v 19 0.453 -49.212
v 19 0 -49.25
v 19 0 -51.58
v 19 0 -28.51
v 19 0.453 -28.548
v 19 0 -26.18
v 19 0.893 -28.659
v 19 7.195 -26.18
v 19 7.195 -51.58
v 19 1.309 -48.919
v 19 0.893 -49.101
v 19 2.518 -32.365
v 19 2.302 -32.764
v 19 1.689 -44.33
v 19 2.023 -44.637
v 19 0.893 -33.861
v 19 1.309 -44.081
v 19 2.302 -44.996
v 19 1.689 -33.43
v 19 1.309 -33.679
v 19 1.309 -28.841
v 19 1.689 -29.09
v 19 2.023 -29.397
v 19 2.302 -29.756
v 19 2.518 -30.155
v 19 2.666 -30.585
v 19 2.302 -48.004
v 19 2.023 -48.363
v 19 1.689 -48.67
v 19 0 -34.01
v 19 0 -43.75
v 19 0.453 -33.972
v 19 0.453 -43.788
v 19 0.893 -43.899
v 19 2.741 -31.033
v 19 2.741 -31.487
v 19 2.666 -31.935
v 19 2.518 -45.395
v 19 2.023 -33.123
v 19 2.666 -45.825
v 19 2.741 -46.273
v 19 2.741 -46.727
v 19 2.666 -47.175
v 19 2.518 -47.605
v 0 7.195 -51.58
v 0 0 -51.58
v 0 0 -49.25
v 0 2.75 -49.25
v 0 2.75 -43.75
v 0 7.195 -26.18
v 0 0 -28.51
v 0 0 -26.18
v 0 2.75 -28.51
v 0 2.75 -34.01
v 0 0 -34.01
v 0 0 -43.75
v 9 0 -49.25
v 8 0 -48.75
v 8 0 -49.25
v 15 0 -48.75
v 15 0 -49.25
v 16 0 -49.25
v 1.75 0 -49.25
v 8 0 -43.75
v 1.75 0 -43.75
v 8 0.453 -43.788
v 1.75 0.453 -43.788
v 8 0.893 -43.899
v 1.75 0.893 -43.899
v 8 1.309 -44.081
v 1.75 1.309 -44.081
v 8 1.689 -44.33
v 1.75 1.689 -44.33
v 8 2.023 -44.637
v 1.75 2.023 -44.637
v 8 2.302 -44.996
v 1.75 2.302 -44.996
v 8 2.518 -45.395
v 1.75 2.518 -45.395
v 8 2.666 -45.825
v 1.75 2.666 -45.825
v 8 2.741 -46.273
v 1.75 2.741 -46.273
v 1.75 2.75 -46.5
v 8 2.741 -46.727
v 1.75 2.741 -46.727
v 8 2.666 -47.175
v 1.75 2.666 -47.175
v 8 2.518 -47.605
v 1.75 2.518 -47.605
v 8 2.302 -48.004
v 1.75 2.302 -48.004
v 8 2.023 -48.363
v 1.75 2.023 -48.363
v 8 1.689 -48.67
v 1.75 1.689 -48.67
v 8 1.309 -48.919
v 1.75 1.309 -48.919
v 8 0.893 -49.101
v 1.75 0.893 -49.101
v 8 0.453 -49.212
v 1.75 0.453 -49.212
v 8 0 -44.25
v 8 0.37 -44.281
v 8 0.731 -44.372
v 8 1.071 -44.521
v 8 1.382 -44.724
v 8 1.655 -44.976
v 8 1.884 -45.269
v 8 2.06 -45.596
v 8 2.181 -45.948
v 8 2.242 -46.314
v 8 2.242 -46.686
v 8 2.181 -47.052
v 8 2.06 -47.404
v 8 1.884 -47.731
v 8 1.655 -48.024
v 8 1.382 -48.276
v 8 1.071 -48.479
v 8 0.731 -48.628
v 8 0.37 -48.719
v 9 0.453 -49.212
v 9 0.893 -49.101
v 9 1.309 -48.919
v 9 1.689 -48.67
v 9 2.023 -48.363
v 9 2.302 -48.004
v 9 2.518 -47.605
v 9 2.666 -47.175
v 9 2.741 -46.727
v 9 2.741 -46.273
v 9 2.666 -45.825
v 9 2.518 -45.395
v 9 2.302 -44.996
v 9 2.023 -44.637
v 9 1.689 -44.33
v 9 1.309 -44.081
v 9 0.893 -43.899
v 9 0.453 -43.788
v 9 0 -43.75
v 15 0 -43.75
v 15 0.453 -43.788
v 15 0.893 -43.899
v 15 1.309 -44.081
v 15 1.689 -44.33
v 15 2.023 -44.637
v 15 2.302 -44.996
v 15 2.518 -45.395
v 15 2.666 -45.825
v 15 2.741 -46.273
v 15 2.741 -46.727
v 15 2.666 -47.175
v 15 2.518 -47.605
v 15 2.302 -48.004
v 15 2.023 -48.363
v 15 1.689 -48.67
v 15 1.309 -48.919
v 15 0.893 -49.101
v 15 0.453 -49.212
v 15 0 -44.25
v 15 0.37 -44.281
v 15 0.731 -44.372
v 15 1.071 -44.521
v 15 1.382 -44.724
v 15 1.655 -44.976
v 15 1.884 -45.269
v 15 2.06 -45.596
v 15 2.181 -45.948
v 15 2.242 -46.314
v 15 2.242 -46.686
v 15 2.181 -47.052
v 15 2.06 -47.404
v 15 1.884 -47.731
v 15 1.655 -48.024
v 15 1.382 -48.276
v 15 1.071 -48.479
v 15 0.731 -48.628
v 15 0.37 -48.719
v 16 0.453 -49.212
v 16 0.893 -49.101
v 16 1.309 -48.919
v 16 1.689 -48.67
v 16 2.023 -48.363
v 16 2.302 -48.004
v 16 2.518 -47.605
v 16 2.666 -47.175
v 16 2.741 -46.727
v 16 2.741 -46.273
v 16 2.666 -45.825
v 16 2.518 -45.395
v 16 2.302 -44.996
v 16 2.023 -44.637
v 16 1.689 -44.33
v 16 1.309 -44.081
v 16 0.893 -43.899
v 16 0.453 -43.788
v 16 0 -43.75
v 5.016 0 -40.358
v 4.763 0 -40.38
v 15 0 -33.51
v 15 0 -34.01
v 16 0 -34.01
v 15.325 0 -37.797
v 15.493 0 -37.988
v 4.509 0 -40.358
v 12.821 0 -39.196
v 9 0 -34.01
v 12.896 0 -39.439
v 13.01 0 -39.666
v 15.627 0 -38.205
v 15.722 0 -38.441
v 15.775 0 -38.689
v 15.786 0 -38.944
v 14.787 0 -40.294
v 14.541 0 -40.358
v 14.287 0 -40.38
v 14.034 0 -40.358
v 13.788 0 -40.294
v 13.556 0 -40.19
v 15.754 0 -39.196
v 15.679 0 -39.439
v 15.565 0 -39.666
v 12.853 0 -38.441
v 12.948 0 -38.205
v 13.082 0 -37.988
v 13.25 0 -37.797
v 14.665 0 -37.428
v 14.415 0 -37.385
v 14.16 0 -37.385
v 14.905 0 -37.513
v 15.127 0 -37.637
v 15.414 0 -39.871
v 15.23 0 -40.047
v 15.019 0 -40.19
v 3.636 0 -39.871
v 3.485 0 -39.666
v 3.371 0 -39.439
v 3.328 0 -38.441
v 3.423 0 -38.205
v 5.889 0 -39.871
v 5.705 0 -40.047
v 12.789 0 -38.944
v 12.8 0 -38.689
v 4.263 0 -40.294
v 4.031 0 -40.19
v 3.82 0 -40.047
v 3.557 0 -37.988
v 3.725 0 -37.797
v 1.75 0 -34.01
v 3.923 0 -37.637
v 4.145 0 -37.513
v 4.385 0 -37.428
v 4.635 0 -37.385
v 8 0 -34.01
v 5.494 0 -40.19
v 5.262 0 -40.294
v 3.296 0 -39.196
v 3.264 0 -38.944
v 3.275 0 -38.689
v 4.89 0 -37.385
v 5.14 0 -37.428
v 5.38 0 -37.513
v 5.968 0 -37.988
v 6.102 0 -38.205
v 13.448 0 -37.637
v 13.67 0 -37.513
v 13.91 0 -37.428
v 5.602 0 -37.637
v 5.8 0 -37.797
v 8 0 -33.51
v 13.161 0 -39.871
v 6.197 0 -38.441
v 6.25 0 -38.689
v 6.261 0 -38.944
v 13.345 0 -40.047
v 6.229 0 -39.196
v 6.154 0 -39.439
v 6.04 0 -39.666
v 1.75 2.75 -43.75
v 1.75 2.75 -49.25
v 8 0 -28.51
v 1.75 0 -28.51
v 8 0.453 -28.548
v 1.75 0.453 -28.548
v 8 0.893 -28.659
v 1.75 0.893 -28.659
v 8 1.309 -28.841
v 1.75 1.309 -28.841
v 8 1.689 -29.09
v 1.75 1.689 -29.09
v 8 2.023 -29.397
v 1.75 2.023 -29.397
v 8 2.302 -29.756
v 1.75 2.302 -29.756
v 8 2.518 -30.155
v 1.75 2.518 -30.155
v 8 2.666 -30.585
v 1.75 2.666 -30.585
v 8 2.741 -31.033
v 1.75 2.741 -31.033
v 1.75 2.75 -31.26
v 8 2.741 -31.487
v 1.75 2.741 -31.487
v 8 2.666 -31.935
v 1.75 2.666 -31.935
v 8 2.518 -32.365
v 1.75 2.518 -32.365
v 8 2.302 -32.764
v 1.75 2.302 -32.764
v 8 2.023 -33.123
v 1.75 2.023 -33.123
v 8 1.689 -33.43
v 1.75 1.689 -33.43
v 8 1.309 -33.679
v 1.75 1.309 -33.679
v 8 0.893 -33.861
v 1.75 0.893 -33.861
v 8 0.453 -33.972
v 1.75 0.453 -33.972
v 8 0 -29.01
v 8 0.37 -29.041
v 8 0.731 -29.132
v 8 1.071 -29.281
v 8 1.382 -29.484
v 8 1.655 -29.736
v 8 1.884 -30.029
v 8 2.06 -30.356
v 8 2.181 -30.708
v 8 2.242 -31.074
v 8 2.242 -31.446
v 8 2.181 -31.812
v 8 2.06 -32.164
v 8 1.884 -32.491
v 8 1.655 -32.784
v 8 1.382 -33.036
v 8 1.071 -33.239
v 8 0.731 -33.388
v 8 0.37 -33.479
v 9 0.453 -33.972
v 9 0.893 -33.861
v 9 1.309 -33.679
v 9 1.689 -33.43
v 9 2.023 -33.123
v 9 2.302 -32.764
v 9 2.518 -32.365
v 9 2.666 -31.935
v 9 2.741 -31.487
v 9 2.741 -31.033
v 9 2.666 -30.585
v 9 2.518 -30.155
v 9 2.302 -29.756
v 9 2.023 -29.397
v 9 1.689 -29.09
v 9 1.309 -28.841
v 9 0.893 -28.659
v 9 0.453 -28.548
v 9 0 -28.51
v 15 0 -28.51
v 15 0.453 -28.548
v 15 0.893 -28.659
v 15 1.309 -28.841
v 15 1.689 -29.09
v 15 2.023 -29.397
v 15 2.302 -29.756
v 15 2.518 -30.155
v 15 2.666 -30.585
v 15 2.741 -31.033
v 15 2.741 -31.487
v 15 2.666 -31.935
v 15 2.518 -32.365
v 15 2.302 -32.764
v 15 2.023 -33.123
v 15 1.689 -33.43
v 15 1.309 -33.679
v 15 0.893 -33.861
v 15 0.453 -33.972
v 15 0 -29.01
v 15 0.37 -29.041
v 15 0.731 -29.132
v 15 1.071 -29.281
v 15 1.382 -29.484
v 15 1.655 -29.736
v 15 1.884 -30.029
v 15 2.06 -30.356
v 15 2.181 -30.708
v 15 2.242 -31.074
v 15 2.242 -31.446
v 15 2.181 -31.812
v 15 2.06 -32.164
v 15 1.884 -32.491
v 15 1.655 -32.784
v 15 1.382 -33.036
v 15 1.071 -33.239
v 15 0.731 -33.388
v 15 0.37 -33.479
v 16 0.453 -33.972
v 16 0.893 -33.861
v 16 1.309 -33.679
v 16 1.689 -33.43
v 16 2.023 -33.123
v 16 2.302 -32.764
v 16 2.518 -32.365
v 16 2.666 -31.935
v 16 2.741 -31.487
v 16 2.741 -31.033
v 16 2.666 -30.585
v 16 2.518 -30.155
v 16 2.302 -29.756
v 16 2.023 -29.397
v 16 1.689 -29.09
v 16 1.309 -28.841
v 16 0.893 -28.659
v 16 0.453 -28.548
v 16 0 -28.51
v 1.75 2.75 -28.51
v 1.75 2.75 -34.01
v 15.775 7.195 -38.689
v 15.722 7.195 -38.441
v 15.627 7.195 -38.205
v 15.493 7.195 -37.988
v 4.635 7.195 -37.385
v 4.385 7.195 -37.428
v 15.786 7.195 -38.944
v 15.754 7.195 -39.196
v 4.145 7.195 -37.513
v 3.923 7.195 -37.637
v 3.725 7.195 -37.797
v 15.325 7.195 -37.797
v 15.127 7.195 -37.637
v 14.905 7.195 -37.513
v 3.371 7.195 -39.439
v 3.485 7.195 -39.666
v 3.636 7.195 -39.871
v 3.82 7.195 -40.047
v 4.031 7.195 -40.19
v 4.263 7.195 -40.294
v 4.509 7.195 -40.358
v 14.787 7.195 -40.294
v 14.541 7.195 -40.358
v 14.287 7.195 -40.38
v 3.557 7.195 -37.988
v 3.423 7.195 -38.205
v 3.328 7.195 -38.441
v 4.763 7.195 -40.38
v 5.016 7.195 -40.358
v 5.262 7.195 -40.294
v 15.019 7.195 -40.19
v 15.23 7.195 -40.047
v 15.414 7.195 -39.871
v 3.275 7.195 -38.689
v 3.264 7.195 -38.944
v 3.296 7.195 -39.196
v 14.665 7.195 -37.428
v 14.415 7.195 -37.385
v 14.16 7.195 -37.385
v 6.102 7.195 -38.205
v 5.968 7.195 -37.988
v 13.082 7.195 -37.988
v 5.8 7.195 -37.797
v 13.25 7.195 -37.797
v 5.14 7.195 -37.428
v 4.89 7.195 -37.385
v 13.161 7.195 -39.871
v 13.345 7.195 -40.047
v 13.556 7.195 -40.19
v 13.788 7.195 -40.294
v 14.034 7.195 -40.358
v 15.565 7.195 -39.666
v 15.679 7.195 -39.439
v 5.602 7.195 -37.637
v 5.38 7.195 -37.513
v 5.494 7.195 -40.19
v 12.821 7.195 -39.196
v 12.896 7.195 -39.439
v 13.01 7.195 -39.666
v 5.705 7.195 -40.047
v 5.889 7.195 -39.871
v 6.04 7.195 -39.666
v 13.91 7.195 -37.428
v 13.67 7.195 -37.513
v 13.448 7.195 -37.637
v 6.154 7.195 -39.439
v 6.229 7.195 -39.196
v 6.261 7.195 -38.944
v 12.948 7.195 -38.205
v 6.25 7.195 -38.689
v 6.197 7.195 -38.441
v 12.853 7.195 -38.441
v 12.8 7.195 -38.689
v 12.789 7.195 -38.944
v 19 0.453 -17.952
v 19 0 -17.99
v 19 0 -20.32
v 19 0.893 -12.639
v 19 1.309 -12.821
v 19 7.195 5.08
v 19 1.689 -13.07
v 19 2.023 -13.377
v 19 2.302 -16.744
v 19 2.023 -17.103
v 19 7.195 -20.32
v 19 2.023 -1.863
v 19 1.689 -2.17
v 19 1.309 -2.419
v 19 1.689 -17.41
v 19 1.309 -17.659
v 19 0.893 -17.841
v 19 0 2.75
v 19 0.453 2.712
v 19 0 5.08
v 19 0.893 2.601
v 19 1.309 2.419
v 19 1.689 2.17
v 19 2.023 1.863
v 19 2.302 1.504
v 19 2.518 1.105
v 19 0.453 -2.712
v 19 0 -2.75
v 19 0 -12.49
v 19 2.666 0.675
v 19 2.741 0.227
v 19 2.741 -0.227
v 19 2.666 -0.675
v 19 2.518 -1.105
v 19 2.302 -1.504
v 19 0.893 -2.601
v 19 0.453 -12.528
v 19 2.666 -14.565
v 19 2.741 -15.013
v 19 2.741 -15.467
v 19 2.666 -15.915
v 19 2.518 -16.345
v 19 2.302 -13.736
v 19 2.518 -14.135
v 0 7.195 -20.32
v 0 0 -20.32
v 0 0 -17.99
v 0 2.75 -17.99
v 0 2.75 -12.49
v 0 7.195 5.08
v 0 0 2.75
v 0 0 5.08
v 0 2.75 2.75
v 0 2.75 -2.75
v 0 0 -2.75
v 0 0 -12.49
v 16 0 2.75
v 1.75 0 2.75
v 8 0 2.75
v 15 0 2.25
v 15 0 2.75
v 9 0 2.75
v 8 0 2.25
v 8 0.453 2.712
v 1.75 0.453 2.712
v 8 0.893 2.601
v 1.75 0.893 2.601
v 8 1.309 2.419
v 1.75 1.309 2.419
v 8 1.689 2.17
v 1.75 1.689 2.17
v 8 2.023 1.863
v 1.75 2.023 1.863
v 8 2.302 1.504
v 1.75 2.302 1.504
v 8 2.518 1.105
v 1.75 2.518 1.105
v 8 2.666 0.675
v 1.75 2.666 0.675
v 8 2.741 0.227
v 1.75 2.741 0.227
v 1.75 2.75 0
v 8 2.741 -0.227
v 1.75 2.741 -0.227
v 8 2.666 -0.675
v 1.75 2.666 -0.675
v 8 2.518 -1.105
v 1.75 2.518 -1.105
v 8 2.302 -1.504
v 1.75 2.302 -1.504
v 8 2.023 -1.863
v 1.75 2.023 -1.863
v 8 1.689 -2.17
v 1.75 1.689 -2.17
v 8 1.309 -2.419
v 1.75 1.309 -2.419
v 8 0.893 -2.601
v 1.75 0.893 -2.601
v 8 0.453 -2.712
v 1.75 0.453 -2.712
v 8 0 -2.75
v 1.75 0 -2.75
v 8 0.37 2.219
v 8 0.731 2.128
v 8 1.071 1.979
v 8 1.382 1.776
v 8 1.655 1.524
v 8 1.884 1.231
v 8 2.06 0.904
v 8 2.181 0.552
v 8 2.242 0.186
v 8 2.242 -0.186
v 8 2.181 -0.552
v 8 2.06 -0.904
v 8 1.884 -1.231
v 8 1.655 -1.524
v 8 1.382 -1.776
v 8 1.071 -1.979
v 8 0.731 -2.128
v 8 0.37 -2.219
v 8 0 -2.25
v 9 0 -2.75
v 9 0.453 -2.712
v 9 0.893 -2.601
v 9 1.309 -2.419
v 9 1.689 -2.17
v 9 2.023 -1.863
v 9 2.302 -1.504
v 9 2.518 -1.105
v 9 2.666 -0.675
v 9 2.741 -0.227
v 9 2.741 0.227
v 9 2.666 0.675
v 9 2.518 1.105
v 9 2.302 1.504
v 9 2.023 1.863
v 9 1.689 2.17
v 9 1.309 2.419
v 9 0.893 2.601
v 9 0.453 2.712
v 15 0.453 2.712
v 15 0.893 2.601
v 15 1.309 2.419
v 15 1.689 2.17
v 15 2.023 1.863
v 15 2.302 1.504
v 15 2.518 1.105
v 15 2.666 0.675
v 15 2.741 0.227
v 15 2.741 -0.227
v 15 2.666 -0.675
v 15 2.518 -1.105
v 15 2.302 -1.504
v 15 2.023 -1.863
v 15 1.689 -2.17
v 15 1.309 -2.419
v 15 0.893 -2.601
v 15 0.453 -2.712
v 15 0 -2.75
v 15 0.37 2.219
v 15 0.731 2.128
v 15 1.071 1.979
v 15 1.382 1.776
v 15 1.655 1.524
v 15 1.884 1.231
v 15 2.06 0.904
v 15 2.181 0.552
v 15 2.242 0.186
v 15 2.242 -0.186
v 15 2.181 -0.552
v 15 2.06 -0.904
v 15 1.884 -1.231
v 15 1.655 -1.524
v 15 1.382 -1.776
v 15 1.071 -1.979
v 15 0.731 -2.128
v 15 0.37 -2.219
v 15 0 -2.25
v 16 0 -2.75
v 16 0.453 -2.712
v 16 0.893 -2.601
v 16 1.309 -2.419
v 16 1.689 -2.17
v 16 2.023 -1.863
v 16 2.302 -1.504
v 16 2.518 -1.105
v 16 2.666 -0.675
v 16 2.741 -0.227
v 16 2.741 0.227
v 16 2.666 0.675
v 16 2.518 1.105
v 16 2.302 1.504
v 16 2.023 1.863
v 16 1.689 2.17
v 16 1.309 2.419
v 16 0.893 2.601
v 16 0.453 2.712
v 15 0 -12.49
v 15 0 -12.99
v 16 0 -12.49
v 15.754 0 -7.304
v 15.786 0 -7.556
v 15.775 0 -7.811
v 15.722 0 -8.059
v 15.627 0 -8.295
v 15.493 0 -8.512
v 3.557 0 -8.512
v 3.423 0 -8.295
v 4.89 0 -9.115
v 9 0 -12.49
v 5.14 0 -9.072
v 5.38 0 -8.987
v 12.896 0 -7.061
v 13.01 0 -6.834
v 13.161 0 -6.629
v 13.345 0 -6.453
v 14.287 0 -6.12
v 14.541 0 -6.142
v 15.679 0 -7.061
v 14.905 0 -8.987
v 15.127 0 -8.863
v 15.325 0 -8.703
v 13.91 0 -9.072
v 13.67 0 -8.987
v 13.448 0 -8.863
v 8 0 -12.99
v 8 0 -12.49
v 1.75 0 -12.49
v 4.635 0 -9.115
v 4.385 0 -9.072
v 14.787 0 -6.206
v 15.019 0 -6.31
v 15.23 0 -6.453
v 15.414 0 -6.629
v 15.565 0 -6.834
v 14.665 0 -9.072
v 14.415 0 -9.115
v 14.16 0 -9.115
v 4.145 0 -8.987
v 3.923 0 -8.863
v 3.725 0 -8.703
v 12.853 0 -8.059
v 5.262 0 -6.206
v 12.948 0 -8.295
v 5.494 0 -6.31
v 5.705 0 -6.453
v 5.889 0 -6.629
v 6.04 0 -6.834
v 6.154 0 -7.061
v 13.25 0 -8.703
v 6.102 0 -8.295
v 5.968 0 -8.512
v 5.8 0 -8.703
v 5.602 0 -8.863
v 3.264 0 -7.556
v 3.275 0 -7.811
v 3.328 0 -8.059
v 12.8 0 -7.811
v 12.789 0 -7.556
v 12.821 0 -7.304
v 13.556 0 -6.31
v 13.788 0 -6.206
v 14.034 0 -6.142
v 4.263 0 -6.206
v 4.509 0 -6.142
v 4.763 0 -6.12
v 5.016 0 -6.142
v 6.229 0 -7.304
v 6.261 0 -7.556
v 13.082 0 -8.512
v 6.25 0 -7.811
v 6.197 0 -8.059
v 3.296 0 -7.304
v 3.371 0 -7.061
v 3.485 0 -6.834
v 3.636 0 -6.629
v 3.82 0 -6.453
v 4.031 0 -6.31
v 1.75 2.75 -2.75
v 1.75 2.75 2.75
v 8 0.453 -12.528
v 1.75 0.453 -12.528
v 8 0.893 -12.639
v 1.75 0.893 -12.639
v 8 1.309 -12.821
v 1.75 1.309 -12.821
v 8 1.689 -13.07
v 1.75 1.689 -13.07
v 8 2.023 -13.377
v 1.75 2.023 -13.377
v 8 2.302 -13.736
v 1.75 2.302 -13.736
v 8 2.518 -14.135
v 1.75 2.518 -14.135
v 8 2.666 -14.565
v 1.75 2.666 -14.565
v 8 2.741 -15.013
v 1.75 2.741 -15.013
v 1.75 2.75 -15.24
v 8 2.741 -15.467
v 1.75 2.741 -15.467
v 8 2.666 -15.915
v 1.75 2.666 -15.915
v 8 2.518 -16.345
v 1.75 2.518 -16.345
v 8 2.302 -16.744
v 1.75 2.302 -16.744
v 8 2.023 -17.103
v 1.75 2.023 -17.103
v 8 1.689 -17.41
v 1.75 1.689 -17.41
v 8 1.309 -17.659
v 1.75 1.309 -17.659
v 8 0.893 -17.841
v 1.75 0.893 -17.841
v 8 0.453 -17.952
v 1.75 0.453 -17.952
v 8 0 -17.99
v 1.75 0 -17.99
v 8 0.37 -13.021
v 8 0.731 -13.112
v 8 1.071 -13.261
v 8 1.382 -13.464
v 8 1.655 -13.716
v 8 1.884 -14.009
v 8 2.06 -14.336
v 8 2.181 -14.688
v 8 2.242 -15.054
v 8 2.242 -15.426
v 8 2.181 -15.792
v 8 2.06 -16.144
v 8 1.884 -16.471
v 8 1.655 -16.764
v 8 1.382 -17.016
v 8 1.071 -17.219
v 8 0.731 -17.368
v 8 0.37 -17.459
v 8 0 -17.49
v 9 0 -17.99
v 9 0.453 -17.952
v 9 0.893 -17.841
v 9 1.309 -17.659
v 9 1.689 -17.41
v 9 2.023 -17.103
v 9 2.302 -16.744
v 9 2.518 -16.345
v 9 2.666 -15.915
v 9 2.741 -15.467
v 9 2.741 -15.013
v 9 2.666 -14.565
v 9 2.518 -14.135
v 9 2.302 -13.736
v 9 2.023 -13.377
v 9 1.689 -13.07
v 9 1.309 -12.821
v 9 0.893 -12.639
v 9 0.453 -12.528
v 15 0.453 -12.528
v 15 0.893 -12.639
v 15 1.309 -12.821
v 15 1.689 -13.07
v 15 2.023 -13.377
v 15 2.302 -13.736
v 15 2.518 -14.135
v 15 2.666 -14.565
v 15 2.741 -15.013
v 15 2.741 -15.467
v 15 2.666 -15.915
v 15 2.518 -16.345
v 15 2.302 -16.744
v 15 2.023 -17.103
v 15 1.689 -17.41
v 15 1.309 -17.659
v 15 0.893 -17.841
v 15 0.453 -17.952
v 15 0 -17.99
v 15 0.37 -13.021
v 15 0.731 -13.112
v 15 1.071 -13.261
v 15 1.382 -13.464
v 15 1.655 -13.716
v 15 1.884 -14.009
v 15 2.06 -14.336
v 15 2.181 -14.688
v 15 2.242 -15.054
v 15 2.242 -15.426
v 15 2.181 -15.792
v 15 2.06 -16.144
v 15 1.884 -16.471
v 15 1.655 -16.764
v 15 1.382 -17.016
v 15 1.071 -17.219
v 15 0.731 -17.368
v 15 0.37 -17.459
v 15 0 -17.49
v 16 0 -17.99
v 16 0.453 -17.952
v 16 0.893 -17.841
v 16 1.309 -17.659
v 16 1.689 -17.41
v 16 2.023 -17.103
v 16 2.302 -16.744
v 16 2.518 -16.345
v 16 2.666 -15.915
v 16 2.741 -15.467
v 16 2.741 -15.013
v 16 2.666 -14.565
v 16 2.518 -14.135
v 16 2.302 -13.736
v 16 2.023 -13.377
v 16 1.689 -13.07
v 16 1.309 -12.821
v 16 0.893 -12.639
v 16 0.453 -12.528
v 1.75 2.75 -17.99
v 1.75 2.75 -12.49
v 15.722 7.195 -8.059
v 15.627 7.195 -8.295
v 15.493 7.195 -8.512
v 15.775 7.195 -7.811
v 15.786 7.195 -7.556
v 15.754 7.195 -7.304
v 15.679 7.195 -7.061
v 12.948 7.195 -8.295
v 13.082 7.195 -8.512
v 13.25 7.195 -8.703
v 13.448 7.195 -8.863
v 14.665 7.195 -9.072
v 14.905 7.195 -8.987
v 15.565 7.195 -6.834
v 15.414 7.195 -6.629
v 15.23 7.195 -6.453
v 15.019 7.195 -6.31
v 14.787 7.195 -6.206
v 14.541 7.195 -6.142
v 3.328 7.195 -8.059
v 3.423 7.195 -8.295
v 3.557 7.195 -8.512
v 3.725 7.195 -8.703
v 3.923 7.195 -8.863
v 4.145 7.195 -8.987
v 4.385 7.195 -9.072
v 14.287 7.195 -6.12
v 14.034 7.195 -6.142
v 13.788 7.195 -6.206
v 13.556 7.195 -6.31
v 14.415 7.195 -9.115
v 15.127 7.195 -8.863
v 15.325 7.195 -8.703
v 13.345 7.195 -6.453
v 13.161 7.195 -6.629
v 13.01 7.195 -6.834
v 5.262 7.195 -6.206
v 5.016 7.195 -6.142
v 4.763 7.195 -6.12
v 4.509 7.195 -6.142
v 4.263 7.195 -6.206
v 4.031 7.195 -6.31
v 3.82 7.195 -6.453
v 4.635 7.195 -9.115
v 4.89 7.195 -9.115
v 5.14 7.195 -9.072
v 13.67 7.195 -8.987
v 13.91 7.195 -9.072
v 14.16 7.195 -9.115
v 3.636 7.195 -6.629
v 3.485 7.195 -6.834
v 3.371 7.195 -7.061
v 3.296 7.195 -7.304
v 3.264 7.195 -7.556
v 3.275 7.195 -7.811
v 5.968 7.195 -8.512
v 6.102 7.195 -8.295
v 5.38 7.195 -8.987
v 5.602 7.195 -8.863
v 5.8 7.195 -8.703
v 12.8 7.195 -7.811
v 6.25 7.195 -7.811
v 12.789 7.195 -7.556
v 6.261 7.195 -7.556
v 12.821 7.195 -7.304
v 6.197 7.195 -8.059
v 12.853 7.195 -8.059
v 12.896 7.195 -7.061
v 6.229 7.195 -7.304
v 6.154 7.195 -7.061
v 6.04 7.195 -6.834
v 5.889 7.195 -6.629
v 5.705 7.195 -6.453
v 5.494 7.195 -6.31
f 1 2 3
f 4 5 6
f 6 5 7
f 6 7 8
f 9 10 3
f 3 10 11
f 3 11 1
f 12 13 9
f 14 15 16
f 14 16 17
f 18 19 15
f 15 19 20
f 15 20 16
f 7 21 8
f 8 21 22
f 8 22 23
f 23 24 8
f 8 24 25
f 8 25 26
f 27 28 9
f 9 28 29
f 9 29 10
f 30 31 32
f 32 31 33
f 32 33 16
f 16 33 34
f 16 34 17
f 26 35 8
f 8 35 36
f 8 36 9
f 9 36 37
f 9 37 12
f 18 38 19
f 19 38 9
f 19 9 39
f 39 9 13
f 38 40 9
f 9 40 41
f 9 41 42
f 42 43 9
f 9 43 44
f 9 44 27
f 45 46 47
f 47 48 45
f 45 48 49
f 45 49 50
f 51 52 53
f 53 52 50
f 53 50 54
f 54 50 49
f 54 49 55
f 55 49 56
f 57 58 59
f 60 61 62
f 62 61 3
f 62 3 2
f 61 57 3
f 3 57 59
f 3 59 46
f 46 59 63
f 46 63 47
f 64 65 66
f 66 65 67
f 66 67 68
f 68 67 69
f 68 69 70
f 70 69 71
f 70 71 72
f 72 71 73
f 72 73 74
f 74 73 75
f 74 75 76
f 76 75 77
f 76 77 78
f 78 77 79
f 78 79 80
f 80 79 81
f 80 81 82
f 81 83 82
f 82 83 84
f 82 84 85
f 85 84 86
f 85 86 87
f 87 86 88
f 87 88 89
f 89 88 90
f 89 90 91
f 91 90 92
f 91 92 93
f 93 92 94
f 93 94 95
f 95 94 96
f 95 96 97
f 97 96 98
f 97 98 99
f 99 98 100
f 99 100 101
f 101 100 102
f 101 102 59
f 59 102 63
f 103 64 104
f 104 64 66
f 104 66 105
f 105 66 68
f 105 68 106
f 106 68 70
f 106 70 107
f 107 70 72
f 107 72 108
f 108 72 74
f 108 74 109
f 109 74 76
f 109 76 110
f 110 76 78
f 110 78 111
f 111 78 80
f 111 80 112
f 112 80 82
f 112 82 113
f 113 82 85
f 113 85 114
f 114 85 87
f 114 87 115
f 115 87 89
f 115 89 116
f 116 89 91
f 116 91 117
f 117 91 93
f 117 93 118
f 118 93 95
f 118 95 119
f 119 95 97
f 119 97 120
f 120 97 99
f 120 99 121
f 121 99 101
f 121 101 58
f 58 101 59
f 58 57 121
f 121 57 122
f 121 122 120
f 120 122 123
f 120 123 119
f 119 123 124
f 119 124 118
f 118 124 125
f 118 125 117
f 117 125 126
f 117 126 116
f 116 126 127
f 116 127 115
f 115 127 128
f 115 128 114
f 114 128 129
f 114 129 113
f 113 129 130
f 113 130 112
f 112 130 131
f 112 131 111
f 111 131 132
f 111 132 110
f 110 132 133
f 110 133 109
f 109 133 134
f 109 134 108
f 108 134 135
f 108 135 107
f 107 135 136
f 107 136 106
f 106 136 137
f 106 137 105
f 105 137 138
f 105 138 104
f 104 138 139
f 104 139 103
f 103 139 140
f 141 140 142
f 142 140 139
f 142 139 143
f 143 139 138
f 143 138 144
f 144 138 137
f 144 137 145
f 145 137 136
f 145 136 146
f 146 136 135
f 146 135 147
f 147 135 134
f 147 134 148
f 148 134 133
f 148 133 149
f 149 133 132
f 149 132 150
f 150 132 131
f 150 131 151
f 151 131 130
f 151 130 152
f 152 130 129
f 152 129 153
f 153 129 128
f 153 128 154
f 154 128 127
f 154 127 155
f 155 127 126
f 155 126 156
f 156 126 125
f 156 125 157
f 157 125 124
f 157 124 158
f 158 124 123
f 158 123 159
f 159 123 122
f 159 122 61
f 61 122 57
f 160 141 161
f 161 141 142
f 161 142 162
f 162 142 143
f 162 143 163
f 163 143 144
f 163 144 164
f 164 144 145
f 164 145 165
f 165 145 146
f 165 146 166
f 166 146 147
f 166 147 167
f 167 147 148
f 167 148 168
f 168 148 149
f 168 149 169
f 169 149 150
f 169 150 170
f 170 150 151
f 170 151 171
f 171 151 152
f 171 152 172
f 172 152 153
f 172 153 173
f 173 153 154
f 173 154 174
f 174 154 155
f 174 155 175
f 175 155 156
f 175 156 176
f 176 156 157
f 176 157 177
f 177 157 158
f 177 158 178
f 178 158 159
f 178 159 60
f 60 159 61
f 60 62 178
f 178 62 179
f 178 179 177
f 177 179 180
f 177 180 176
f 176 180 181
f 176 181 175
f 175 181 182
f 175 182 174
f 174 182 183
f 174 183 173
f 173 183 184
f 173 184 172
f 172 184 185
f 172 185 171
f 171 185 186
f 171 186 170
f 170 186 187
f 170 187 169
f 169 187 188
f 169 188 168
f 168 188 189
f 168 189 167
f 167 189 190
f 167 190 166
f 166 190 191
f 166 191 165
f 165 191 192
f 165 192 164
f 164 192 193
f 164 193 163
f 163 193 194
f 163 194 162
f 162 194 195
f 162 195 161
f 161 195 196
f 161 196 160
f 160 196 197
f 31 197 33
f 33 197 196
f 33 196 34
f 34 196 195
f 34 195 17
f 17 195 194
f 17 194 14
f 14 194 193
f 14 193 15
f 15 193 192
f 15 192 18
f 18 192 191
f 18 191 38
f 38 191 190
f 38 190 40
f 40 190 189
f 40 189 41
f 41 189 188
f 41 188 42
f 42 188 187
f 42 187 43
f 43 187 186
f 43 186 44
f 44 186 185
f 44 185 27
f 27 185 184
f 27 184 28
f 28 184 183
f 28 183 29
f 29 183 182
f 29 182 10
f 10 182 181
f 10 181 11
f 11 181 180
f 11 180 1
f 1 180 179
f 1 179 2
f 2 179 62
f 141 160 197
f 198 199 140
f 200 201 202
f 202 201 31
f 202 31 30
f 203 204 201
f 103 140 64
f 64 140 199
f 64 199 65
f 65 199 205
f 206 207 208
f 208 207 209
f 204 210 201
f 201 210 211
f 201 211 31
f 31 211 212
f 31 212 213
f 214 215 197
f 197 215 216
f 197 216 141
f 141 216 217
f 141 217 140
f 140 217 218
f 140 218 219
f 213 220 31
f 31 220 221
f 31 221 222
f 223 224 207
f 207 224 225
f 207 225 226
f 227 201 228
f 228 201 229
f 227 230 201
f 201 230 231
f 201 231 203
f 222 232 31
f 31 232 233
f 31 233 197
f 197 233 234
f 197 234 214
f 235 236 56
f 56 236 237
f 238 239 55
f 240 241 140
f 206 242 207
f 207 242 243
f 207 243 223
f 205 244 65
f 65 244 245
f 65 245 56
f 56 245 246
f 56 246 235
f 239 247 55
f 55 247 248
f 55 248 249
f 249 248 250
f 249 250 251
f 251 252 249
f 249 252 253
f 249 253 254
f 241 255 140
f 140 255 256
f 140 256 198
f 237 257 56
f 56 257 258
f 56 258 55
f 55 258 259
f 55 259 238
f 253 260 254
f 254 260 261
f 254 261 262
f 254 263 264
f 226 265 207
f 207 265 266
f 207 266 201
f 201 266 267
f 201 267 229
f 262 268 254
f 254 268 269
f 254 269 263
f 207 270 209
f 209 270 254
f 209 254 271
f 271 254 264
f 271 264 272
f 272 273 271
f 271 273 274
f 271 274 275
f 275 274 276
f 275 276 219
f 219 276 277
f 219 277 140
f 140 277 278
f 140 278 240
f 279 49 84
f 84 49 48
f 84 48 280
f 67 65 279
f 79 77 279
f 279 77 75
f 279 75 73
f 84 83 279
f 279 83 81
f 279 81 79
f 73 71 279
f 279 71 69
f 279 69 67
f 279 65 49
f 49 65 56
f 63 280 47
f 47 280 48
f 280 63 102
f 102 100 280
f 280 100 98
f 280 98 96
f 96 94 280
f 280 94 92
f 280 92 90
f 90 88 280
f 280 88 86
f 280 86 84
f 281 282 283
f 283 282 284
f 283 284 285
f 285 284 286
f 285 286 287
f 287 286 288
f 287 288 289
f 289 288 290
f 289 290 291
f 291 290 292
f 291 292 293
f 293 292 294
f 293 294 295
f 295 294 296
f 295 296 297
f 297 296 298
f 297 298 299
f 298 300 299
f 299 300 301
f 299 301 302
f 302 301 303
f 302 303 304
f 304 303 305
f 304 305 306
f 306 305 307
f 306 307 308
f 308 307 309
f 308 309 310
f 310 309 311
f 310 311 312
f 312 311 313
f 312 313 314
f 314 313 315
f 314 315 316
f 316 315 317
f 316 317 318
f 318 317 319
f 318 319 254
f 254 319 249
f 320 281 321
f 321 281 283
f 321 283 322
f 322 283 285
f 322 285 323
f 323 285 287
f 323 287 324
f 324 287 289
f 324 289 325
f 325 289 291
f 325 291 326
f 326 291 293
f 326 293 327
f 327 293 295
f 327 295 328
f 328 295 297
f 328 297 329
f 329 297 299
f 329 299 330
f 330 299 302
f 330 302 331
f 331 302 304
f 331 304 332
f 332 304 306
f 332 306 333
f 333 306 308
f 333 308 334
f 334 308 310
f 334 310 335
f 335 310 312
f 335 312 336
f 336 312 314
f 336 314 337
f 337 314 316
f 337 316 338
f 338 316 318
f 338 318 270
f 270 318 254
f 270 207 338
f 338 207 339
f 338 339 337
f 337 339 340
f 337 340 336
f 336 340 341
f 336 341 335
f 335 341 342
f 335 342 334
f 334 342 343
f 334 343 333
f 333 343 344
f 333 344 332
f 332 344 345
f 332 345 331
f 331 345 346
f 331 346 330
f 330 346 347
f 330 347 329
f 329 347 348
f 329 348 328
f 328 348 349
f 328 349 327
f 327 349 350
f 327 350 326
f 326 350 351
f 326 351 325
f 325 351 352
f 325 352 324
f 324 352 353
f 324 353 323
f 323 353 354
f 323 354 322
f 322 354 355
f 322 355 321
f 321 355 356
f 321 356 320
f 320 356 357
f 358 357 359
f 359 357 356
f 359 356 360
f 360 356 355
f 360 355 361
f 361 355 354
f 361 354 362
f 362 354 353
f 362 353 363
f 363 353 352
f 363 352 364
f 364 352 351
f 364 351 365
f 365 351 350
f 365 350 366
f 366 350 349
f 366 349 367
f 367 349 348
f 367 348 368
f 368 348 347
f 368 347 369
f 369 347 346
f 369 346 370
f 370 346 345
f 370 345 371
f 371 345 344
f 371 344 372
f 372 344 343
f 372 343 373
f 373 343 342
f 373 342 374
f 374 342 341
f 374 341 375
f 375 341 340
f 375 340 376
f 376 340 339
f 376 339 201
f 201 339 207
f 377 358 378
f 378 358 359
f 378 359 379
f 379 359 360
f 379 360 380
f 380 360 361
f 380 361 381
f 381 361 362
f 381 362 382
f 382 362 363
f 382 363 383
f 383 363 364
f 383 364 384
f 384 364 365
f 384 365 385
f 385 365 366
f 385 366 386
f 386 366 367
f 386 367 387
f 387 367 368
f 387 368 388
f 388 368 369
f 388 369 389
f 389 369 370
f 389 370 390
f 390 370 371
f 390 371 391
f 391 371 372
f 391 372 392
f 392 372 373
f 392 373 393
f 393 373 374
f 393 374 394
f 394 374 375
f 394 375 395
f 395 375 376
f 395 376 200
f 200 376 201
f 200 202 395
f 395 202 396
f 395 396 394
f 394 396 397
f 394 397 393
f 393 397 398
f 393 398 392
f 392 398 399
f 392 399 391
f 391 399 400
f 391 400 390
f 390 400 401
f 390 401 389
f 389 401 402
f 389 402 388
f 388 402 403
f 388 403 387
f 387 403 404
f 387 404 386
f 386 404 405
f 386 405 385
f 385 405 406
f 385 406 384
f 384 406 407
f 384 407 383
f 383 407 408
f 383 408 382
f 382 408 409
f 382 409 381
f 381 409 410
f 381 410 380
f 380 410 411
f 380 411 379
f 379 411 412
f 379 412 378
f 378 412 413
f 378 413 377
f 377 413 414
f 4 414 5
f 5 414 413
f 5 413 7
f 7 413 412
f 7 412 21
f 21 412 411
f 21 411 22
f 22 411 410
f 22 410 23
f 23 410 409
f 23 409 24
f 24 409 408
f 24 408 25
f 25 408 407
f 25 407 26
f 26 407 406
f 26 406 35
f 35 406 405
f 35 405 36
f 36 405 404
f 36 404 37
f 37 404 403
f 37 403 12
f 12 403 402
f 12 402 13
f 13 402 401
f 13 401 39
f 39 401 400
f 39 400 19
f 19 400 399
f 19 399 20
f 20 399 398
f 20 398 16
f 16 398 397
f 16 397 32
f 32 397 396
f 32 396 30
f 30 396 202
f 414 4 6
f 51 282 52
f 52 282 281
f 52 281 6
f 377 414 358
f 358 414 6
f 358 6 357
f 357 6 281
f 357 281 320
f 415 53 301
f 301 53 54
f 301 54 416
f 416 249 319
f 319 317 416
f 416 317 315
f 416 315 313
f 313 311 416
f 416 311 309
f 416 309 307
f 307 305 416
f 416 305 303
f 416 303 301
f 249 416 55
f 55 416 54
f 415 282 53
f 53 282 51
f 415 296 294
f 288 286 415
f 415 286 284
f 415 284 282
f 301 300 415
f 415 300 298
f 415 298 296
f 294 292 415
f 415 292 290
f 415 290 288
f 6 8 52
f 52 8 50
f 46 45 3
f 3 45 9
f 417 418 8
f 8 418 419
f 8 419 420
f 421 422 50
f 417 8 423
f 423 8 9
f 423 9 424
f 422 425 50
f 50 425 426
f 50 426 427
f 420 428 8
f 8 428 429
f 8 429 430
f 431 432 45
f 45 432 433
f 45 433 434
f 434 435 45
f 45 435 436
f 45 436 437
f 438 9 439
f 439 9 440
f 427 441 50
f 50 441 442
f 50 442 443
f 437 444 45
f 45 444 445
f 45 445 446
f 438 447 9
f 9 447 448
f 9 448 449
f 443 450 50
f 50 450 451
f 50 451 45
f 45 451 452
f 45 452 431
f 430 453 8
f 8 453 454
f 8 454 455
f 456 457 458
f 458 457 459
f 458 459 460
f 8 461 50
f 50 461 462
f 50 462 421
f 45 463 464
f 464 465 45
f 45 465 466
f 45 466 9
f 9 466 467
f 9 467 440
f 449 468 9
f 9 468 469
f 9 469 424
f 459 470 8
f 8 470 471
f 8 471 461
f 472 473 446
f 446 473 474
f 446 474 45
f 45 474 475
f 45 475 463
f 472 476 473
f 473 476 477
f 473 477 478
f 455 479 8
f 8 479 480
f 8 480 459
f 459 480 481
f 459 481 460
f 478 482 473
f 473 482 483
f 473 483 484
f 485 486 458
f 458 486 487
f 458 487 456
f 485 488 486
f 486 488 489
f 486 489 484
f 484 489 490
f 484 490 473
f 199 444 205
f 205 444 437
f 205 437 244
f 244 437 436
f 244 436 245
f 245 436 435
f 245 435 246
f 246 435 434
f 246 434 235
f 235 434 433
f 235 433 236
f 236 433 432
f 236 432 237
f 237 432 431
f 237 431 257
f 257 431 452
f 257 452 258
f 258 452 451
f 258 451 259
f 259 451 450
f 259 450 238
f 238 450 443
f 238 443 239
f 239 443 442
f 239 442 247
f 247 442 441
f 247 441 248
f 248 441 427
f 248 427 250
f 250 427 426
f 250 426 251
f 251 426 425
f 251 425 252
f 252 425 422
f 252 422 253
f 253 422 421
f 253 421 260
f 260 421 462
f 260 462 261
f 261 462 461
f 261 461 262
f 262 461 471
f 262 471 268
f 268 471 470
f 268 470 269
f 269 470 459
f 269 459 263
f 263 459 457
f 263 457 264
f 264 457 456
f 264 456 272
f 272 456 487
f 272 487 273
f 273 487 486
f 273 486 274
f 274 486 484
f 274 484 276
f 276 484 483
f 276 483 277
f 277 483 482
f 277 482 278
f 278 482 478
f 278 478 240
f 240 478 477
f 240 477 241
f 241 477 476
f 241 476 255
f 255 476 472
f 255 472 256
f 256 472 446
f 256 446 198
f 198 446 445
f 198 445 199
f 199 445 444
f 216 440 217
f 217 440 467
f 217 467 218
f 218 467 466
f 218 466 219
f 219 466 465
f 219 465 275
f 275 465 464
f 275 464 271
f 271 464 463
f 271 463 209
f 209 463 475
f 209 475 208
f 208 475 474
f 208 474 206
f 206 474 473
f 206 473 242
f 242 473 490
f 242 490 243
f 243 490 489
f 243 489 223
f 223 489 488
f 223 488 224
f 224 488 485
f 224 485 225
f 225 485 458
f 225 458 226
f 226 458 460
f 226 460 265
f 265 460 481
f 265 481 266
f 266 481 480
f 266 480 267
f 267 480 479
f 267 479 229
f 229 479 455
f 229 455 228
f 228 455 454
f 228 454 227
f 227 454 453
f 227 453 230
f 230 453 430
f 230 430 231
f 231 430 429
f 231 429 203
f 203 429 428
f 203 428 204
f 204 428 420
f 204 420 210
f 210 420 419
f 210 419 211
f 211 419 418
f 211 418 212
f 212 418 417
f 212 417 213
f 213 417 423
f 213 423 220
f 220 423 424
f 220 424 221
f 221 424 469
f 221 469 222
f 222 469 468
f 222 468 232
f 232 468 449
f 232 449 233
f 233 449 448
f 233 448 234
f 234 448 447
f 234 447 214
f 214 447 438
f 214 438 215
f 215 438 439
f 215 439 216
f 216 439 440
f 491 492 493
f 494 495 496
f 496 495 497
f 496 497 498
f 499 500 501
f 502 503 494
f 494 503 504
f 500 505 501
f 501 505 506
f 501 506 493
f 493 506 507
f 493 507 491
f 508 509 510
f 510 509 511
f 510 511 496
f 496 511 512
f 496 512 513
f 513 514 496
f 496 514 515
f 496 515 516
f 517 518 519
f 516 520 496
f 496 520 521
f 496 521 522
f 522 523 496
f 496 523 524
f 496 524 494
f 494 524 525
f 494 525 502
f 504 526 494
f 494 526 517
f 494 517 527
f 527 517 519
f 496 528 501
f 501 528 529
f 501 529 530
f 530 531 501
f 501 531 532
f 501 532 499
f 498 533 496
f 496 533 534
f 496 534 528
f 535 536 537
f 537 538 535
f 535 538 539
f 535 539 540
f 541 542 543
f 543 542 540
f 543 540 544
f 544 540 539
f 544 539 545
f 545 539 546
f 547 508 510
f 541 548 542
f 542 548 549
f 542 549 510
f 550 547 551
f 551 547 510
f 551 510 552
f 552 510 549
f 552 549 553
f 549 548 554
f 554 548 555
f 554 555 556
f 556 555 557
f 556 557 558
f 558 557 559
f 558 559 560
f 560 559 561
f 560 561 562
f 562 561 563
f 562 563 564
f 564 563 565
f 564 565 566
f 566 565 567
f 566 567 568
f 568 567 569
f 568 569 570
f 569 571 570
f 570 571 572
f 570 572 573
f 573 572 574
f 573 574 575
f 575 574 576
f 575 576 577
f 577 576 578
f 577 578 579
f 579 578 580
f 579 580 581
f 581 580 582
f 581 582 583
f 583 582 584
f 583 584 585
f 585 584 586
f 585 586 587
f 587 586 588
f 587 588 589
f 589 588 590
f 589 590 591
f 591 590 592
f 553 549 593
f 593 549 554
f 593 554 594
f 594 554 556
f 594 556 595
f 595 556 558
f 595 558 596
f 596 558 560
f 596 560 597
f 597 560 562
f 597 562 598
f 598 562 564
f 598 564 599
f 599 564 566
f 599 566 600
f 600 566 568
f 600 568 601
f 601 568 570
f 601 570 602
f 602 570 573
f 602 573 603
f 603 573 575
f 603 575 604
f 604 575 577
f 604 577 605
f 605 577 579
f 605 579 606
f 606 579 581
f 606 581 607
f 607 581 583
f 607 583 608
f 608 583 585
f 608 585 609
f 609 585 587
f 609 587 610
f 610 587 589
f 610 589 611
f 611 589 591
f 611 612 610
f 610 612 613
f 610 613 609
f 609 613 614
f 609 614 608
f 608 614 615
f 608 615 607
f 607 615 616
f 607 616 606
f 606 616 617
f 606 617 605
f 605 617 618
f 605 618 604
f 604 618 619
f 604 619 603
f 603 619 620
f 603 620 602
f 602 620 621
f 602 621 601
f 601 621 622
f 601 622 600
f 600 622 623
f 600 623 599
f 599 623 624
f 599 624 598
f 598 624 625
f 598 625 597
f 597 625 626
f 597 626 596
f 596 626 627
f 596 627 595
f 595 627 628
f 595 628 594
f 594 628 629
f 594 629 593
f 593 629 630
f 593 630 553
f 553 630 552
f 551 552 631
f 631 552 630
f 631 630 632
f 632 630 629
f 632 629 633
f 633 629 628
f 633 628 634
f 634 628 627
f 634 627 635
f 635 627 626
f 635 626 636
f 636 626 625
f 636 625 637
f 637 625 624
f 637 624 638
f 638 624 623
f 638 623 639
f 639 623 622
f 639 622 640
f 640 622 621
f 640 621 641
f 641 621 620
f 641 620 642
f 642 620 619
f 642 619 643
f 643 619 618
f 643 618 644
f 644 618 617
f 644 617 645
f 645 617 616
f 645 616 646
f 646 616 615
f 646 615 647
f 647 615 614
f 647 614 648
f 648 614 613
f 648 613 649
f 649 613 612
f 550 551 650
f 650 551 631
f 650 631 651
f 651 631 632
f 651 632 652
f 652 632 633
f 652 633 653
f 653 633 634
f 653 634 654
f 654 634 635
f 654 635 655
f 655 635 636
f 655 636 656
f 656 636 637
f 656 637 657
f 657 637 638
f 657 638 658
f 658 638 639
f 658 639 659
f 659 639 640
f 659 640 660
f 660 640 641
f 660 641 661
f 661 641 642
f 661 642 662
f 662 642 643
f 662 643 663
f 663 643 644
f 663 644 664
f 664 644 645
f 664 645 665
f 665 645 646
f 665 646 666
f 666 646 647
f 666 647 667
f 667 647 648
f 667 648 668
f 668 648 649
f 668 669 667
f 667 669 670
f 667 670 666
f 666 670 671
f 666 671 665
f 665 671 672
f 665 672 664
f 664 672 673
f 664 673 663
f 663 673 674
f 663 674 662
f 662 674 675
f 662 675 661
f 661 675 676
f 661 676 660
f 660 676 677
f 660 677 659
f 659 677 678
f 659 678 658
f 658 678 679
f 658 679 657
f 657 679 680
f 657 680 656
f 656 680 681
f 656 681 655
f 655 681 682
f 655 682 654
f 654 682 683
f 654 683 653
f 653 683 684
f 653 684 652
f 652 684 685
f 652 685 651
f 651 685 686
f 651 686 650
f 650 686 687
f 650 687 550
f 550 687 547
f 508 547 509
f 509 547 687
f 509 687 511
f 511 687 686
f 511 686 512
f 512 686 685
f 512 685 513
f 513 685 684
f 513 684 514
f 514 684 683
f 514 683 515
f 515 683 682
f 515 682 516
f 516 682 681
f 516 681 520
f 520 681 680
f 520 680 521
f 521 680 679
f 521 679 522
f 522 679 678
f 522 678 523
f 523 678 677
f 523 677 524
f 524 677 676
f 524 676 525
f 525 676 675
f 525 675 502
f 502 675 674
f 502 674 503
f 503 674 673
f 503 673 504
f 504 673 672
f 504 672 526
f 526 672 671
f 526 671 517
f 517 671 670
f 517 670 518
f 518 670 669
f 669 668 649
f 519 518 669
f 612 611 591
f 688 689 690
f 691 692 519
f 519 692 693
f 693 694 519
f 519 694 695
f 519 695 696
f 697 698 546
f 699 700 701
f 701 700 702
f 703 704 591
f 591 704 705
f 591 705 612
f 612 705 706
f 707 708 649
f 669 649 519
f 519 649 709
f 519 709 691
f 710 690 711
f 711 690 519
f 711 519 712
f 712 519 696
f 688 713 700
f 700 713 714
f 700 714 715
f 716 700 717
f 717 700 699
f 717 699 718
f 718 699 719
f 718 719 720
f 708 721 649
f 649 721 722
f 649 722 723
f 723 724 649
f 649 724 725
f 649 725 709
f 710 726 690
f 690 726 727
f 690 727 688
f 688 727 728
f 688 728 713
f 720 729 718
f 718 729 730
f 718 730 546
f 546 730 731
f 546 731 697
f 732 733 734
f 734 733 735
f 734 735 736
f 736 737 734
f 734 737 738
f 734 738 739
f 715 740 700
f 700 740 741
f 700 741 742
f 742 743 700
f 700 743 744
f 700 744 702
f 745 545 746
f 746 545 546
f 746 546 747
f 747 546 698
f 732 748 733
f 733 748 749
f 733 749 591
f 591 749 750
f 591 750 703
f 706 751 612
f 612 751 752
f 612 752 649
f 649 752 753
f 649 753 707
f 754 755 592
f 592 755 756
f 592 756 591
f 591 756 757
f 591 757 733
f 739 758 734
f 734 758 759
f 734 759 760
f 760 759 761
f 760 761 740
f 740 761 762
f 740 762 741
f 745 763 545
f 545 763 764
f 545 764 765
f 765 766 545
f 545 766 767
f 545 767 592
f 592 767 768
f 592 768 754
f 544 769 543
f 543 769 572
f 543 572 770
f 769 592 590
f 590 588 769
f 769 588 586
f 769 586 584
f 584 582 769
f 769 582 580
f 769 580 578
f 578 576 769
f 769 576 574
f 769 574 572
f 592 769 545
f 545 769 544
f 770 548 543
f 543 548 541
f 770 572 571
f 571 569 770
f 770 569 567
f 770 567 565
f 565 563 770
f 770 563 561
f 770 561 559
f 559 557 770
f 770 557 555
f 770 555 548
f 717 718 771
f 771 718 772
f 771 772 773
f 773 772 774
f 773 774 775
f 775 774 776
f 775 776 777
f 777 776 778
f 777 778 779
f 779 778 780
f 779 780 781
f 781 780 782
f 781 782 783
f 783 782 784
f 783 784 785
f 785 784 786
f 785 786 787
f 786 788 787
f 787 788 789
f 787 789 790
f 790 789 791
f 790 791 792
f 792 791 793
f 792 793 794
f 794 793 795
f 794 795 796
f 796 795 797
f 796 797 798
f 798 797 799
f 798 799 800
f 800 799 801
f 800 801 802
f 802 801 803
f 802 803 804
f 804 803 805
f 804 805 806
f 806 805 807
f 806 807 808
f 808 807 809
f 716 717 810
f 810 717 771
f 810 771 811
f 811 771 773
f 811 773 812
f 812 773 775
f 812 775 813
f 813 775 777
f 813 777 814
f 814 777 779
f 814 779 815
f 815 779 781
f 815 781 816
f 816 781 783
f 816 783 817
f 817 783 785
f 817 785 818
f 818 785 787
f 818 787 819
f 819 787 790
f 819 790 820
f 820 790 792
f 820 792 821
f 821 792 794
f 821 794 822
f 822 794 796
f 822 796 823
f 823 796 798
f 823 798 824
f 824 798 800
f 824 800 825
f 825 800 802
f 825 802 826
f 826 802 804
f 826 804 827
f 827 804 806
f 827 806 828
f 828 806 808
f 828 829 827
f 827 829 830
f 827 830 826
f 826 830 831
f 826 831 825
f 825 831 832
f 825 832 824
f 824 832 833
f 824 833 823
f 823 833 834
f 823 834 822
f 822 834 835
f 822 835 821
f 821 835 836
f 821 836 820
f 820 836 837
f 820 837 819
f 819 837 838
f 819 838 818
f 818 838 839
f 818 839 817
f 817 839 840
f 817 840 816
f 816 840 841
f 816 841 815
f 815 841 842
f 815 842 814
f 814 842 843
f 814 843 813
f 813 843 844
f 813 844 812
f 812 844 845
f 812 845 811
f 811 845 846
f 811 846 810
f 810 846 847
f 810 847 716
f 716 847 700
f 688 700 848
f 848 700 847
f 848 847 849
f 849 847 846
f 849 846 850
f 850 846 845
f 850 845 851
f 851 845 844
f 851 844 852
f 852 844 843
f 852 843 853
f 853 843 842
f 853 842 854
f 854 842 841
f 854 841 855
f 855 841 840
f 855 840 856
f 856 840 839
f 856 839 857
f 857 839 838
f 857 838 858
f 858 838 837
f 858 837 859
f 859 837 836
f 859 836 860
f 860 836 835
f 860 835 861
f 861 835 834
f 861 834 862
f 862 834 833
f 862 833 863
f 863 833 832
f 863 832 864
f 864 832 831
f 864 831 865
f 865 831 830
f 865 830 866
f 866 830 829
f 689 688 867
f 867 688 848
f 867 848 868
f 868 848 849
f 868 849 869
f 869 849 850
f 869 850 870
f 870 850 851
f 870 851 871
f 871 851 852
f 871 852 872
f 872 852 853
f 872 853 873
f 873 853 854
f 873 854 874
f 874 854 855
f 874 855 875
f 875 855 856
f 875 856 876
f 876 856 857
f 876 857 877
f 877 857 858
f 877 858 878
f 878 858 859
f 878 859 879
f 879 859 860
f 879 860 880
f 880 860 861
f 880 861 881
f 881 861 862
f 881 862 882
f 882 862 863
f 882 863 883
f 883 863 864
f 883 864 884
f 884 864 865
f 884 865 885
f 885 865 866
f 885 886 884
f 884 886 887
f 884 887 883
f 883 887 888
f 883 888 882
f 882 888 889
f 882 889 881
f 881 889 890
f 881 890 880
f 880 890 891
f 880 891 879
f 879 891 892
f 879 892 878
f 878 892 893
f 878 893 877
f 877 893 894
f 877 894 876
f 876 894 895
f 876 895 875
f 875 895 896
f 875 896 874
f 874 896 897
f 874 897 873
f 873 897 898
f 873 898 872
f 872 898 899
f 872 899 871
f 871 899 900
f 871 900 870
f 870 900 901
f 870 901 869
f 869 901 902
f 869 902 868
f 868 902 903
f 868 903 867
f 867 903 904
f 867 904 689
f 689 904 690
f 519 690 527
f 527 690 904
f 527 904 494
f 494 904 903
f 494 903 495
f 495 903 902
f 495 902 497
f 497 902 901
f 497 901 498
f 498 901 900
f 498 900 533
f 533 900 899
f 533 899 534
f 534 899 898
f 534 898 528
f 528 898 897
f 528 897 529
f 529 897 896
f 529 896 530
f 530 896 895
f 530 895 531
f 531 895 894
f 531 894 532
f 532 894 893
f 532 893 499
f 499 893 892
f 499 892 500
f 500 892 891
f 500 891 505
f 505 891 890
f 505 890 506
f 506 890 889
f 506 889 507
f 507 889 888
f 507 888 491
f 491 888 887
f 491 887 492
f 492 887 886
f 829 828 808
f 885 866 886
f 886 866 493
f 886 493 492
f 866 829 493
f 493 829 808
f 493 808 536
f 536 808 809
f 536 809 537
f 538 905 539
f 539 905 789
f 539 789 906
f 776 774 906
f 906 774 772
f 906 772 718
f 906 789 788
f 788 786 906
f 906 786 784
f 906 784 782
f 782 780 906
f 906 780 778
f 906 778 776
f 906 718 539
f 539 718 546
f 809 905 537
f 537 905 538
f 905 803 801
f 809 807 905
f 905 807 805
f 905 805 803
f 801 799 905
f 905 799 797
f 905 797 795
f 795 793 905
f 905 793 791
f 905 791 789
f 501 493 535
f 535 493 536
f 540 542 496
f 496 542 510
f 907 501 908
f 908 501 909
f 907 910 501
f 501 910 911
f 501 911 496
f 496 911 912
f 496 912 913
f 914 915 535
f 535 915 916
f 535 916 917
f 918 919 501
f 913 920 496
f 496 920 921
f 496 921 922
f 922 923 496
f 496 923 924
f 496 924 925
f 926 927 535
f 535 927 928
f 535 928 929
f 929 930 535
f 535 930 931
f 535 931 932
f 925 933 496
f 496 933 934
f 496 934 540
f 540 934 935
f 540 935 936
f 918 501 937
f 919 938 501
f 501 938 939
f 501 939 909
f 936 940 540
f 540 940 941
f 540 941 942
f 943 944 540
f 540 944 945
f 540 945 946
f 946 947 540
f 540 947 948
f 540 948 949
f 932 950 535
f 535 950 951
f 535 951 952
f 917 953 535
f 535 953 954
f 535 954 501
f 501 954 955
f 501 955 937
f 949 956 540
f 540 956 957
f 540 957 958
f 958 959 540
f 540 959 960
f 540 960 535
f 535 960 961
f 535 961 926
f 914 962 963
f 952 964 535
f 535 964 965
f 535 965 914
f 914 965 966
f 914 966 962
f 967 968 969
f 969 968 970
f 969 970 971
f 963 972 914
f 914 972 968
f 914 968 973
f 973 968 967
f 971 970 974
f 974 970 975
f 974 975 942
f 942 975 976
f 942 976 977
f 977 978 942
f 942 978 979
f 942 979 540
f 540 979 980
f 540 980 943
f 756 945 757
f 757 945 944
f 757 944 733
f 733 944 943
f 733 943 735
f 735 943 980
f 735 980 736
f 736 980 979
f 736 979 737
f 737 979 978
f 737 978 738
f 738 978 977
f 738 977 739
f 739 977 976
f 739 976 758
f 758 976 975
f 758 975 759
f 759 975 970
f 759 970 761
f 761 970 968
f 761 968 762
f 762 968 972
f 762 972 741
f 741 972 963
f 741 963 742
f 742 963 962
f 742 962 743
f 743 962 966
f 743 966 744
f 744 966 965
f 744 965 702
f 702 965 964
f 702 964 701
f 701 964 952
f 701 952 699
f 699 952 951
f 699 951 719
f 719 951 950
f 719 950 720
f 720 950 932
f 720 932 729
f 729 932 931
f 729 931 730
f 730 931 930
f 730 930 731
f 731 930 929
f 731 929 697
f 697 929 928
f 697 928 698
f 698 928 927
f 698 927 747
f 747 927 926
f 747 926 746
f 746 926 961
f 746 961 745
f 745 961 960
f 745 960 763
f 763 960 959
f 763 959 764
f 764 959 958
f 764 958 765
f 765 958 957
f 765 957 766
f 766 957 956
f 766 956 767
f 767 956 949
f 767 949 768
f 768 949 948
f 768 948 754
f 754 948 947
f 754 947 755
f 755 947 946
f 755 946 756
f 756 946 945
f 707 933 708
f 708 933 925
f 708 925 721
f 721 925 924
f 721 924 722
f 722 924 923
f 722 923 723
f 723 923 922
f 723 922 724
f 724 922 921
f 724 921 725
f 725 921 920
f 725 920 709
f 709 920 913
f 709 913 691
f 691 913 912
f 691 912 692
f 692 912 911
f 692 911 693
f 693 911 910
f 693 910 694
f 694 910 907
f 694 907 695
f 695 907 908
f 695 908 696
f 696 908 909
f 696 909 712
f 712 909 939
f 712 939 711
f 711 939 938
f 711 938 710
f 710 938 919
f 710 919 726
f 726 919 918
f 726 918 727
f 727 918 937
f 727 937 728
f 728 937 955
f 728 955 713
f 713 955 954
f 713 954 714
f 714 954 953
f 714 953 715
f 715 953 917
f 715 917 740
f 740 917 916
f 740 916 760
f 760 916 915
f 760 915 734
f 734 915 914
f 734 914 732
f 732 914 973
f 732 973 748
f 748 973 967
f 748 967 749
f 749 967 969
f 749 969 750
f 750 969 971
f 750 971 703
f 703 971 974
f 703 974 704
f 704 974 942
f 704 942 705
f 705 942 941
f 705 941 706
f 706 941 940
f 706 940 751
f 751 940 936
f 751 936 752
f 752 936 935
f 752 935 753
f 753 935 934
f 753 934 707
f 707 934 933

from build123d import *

# Parameters (mm, degrees)
REVOLVE1_ANGLE           = 180
BOSS_EXTRUDE1_DEPTH      = 9.25
BOSS_EXTRUDE1_DEPTH_BACK = 9.25
BOSS_EXTRUDE2_START      = 3.5
BOSS_EXTRUDE2_DEPTH      = 5.75
BOSS_EXTRUDE3_START      = -3.5
BOSS_EXTRUDE3_DEPTH      = 5.75
SKETCH13_W               = 5.5
SKETCH13_H               = 2.75
CUT_EXTRUDE9_DEPTH       = 1.75
SKETCH16_W               = 19
SKETCH16_H               = 4.169999961
CUT_EXTRUDE10_DEPTH      = 6
SKETCH17_W               = 19
SKETCH17_H               = 25.400000078
BOSS_EXTRUDE4_DEPTH      = 2.194999928
SKETCH18_R               = 1.5
CUT_EXTRUDE11_DEPTH      = 8.194999928


with BuildPart() as part:
    # Sketch6 → Revolve1 (revolve)
    with BuildSketch(Plane(origin=(0, 0, 0), x_dir=(1, 0, 0), z_dir=(0, 1, 0))):
        Polygon((0, 5), (0, 2.75), (8, 2.75), (8, 2.25), (9, 2.75), (15, 2.75), (15, 2.25), (16, 2.75), (19, 2.75), (19, 5), align=None)
    revolve(axis=Axis((0, 0, 0), (1, 0, 0)), revolution_arc=REVOLVE1_ANGLE)

    # Sketch9 → Boss-Extrude1 (add, two sides)
    with BuildSketch(Plane.XY) as boss_extrude1_sk:
        Polygon((0, 3.25), (0, 5), (19, 5), (19, 2.75), align=None)
    extrude(amount=BOSS_EXTRUDE1_DEPTH)
    extrude(boss_extrude1_sk.sketch, amount=-BOSS_EXTRUDE1_DEPTH_BACK)

    # Sketch9<3> → Boss-Extrude2 (add)
    with BuildSketch(Plane.XY.offset(BOSS_EXTRUDE2_START)):
        Polygon((0, 3.25), (19, 2.75), (19, 0), (0, 0), align=None)
    extrude(amount=BOSS_EXTRUDE2_DEPTH)

    # Sketch9<4> → Boss-Extrude3 (add)
    with BuildSketch(Plane.XY.offset(BOSS_EXTRUDE3_START)):
        Polygon((0, 3.25), (19, 2.75), (19, 0), (0, 0), align=None)
    extrude(amount=-BOSS_EXTRUDE3_DEPTH)

    # Sketch13 → Cut-Extrude9 (cut)
    with BuildSketch(Plane.ZY):
        with Locations((0, 1.375)):
            Rectangle(SKETCH13_W, SKETCH13_H)
    extrude(amount=-CUT_EXTRUDE9_DEPTH, mode=Mode.SUBTRACT)

    # Mirror4: part across plane


with BuildPart() as part_1:
    add(part.part)
    add(part.part.mirror(Plane.XY.offset(-7.62)))

    # Sketch16 → Cut-Extrude10 (cut, through all)
    with BuildSketch(Plane(origin=(0, 5, 0), x_dir=(1, 0, 0), z_dir=(0, 1, 0))):
        with Locations((9.5, 22.40500002)):
            Rectangle(SKETCH16_W, SKETCH16_H)
        with Locations((9.5, -7.16500002)):
            Rectangle(SKETCH16_W, SKETCH16_H)
    extrude(amount=-CUT_EXTRUDE10_DEPTH, mode=Mode.SUBTRACT)

    # Sketch17 → Boss-Extrude4 (add)
    with BuildSketch(Plane(origin=(0, 5, 0), x_dir=(1, 0, 0), z_dir=(0, 1, 0))):
        with Locations((9.5, 7.62)):
            Rectangle(SKETCH17_W, SKETCH17_H)
    extrude(amount=BOSS_EXTRUDE4_DEPTH)

    # Sketch18 → Cut-Extrude11 (cut, through all)
    with BuildSketch(Plane(origin=(0, 7.194999928, 0), x_dir=(1, 0, 0), z_dir=(0, 1, 0))):
        with Locations((14.2875, 7.619999961)):
            Circle(SKETCH18_R)
        with Locations((4.7625, 7.619999961)):
            Circle(SKETCH18_R)
    extrude(amount=-CUT_EXTRUDE11_DEPTH, mode=Mode.SUBTRACT)


with BuildPart() as body_2:
    # Mirror1: mirrored copy
    add(part_1.part.mirror(Plane(origin=(0, 0, -23.25), x_dir=(1, 0, 0), z_dir=(0, 0, -1))))


solid = Compound([part_1.part, body_2.part])
